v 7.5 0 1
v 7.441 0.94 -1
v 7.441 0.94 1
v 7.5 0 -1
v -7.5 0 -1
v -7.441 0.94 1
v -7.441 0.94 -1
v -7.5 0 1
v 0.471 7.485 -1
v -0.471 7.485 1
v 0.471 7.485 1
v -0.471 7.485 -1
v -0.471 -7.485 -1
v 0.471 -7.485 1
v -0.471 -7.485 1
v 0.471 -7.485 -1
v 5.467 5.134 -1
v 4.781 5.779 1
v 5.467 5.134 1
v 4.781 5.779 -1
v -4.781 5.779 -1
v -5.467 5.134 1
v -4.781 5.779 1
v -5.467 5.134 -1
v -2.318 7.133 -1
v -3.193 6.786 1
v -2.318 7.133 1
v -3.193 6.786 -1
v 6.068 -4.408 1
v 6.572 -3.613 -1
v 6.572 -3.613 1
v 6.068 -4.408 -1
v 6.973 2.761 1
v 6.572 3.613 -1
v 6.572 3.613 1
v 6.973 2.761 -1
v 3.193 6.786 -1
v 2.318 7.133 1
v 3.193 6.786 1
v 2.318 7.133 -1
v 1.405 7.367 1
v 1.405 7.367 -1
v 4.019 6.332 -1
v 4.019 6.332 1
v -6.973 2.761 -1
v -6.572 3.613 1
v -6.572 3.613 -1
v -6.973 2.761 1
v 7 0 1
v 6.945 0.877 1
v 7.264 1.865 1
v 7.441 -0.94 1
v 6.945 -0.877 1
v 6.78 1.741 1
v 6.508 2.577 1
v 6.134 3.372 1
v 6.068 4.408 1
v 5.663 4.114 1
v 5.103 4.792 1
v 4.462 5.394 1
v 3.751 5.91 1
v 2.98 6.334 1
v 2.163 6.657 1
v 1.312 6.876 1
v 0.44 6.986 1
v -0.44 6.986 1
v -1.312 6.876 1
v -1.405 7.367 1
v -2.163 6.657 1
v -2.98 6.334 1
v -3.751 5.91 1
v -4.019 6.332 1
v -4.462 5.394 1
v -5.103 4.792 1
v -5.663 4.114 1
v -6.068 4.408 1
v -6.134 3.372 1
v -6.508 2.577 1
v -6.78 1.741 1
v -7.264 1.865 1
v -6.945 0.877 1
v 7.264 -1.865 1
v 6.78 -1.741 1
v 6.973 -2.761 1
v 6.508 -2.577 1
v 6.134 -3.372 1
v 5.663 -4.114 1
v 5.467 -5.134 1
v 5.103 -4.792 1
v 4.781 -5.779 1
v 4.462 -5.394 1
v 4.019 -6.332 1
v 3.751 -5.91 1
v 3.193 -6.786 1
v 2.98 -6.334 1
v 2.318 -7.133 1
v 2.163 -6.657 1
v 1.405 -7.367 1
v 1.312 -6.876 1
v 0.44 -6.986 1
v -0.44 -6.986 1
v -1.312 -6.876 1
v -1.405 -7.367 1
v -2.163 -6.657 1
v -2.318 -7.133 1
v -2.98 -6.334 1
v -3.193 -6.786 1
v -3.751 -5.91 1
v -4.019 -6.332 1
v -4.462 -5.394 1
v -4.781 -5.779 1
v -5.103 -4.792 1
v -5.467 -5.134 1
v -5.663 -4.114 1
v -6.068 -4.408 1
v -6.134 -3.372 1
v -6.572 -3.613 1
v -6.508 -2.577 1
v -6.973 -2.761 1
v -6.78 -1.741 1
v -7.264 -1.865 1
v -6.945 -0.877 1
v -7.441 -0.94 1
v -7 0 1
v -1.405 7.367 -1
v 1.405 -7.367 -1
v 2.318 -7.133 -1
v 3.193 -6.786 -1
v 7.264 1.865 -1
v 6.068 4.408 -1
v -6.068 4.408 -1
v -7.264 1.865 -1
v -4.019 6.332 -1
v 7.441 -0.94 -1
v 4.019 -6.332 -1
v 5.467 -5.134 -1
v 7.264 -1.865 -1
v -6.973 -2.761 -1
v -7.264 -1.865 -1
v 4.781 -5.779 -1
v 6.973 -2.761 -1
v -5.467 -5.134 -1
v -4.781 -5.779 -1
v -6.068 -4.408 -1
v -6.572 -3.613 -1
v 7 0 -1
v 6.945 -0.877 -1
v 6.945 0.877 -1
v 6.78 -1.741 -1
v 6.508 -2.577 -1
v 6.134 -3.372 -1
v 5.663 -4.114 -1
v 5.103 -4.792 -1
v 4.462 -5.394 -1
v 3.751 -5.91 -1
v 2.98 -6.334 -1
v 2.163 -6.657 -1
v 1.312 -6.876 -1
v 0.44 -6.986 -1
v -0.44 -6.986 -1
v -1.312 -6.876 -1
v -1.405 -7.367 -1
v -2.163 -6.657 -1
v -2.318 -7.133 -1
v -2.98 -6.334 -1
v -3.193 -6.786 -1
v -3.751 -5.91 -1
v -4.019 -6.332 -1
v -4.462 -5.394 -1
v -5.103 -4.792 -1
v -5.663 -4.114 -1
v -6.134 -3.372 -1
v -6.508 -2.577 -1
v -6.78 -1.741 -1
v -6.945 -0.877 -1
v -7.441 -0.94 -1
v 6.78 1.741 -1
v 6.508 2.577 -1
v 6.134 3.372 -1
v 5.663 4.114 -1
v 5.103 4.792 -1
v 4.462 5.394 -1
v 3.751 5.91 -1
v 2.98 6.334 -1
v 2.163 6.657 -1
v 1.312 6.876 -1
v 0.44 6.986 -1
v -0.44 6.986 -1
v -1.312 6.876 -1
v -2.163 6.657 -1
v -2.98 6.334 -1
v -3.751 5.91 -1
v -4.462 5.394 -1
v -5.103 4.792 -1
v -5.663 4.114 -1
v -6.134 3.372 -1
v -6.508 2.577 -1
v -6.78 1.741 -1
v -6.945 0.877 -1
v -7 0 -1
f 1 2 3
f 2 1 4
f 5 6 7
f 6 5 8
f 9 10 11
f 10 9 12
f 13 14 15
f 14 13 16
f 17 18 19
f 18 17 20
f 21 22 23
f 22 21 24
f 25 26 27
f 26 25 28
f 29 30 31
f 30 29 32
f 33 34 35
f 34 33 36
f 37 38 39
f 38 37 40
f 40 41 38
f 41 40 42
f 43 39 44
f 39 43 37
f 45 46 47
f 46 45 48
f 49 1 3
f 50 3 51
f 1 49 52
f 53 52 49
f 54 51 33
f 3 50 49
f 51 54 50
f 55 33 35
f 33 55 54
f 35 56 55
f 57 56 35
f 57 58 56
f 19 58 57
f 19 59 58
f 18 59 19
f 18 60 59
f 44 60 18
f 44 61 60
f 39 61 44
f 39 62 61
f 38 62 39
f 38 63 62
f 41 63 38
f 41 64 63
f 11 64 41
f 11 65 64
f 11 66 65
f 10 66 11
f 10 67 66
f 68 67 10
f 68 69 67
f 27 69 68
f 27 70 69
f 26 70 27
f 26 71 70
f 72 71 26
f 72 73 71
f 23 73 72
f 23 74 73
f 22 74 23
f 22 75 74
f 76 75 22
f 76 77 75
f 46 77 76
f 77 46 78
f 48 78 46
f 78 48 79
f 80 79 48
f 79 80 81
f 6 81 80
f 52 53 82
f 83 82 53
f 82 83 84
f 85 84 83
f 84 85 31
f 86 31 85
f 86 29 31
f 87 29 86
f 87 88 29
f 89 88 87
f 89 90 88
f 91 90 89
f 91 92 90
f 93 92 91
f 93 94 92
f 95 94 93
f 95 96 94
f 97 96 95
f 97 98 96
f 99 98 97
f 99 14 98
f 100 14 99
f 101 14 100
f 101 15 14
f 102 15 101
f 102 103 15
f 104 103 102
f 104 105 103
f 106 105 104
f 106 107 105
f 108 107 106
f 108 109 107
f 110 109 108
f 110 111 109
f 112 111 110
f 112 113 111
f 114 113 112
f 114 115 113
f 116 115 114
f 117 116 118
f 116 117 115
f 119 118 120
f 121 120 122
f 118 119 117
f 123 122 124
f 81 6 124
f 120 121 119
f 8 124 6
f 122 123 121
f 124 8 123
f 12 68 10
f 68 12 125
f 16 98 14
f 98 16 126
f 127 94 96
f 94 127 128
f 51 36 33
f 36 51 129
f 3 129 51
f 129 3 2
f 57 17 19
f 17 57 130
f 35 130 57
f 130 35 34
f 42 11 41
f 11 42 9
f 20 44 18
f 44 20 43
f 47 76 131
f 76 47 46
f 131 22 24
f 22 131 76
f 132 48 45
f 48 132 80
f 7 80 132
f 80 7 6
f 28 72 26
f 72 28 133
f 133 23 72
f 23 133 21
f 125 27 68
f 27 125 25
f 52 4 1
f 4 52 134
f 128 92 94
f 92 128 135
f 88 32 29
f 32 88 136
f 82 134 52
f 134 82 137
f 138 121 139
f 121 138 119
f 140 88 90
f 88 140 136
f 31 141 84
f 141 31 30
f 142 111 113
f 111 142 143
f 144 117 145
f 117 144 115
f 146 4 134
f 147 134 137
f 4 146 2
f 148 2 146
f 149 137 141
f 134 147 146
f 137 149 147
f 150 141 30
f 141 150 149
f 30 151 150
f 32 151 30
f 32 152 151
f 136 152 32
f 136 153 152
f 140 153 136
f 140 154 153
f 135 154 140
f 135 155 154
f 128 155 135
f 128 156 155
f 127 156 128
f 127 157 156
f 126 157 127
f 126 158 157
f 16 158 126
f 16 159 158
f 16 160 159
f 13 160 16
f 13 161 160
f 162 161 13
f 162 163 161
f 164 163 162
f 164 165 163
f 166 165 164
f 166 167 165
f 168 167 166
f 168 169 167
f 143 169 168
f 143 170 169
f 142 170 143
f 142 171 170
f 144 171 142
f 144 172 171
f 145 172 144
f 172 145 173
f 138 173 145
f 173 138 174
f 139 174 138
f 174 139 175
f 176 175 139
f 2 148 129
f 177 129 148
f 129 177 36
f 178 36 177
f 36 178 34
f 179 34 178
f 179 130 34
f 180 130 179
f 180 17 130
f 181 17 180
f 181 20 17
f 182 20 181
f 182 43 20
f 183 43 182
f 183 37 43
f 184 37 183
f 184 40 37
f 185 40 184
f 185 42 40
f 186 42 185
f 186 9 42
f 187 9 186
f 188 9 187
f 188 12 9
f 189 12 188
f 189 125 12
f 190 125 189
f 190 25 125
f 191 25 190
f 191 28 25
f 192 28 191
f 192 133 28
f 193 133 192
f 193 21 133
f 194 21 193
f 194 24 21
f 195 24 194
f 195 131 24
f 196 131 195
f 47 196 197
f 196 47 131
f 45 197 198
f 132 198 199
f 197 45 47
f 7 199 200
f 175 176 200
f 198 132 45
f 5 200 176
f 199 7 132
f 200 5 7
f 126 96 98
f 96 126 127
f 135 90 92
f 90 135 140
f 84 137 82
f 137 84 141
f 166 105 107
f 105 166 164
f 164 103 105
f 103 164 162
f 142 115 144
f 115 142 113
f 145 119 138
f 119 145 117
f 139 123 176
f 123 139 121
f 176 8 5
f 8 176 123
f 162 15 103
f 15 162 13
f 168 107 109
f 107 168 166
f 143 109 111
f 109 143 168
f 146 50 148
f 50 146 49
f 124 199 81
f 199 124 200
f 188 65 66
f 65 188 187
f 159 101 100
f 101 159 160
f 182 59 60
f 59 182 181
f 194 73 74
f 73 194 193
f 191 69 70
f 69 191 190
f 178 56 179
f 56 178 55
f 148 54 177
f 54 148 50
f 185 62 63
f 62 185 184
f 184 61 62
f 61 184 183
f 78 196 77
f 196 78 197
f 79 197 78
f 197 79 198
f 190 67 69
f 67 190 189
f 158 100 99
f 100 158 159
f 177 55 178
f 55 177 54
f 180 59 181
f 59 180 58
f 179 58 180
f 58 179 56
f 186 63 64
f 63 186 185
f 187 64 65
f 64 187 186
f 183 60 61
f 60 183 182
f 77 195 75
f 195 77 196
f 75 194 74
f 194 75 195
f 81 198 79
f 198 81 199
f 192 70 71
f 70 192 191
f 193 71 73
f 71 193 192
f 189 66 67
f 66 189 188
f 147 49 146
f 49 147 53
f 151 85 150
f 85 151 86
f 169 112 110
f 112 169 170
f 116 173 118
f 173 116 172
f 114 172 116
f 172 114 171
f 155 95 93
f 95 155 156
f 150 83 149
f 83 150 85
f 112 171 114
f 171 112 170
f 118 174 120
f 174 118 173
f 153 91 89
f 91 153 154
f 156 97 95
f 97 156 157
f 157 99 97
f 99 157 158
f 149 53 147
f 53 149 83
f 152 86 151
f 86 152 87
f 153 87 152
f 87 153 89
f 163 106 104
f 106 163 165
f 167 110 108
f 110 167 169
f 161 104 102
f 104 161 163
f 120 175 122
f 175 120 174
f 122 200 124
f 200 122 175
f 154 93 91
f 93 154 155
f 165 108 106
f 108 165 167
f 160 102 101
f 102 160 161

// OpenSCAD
$fn = 50;


difference() {
	union() {
		translate(v = [0, 0, -1.0000000000]) {
			cylinder(h = 2, r = 7.5000000000);
		}
	}
	union() {
		translate(v = [0, 0, -100.0000000000]) {
			cylinder(h = 200, r = 7);
		}
	}
}
